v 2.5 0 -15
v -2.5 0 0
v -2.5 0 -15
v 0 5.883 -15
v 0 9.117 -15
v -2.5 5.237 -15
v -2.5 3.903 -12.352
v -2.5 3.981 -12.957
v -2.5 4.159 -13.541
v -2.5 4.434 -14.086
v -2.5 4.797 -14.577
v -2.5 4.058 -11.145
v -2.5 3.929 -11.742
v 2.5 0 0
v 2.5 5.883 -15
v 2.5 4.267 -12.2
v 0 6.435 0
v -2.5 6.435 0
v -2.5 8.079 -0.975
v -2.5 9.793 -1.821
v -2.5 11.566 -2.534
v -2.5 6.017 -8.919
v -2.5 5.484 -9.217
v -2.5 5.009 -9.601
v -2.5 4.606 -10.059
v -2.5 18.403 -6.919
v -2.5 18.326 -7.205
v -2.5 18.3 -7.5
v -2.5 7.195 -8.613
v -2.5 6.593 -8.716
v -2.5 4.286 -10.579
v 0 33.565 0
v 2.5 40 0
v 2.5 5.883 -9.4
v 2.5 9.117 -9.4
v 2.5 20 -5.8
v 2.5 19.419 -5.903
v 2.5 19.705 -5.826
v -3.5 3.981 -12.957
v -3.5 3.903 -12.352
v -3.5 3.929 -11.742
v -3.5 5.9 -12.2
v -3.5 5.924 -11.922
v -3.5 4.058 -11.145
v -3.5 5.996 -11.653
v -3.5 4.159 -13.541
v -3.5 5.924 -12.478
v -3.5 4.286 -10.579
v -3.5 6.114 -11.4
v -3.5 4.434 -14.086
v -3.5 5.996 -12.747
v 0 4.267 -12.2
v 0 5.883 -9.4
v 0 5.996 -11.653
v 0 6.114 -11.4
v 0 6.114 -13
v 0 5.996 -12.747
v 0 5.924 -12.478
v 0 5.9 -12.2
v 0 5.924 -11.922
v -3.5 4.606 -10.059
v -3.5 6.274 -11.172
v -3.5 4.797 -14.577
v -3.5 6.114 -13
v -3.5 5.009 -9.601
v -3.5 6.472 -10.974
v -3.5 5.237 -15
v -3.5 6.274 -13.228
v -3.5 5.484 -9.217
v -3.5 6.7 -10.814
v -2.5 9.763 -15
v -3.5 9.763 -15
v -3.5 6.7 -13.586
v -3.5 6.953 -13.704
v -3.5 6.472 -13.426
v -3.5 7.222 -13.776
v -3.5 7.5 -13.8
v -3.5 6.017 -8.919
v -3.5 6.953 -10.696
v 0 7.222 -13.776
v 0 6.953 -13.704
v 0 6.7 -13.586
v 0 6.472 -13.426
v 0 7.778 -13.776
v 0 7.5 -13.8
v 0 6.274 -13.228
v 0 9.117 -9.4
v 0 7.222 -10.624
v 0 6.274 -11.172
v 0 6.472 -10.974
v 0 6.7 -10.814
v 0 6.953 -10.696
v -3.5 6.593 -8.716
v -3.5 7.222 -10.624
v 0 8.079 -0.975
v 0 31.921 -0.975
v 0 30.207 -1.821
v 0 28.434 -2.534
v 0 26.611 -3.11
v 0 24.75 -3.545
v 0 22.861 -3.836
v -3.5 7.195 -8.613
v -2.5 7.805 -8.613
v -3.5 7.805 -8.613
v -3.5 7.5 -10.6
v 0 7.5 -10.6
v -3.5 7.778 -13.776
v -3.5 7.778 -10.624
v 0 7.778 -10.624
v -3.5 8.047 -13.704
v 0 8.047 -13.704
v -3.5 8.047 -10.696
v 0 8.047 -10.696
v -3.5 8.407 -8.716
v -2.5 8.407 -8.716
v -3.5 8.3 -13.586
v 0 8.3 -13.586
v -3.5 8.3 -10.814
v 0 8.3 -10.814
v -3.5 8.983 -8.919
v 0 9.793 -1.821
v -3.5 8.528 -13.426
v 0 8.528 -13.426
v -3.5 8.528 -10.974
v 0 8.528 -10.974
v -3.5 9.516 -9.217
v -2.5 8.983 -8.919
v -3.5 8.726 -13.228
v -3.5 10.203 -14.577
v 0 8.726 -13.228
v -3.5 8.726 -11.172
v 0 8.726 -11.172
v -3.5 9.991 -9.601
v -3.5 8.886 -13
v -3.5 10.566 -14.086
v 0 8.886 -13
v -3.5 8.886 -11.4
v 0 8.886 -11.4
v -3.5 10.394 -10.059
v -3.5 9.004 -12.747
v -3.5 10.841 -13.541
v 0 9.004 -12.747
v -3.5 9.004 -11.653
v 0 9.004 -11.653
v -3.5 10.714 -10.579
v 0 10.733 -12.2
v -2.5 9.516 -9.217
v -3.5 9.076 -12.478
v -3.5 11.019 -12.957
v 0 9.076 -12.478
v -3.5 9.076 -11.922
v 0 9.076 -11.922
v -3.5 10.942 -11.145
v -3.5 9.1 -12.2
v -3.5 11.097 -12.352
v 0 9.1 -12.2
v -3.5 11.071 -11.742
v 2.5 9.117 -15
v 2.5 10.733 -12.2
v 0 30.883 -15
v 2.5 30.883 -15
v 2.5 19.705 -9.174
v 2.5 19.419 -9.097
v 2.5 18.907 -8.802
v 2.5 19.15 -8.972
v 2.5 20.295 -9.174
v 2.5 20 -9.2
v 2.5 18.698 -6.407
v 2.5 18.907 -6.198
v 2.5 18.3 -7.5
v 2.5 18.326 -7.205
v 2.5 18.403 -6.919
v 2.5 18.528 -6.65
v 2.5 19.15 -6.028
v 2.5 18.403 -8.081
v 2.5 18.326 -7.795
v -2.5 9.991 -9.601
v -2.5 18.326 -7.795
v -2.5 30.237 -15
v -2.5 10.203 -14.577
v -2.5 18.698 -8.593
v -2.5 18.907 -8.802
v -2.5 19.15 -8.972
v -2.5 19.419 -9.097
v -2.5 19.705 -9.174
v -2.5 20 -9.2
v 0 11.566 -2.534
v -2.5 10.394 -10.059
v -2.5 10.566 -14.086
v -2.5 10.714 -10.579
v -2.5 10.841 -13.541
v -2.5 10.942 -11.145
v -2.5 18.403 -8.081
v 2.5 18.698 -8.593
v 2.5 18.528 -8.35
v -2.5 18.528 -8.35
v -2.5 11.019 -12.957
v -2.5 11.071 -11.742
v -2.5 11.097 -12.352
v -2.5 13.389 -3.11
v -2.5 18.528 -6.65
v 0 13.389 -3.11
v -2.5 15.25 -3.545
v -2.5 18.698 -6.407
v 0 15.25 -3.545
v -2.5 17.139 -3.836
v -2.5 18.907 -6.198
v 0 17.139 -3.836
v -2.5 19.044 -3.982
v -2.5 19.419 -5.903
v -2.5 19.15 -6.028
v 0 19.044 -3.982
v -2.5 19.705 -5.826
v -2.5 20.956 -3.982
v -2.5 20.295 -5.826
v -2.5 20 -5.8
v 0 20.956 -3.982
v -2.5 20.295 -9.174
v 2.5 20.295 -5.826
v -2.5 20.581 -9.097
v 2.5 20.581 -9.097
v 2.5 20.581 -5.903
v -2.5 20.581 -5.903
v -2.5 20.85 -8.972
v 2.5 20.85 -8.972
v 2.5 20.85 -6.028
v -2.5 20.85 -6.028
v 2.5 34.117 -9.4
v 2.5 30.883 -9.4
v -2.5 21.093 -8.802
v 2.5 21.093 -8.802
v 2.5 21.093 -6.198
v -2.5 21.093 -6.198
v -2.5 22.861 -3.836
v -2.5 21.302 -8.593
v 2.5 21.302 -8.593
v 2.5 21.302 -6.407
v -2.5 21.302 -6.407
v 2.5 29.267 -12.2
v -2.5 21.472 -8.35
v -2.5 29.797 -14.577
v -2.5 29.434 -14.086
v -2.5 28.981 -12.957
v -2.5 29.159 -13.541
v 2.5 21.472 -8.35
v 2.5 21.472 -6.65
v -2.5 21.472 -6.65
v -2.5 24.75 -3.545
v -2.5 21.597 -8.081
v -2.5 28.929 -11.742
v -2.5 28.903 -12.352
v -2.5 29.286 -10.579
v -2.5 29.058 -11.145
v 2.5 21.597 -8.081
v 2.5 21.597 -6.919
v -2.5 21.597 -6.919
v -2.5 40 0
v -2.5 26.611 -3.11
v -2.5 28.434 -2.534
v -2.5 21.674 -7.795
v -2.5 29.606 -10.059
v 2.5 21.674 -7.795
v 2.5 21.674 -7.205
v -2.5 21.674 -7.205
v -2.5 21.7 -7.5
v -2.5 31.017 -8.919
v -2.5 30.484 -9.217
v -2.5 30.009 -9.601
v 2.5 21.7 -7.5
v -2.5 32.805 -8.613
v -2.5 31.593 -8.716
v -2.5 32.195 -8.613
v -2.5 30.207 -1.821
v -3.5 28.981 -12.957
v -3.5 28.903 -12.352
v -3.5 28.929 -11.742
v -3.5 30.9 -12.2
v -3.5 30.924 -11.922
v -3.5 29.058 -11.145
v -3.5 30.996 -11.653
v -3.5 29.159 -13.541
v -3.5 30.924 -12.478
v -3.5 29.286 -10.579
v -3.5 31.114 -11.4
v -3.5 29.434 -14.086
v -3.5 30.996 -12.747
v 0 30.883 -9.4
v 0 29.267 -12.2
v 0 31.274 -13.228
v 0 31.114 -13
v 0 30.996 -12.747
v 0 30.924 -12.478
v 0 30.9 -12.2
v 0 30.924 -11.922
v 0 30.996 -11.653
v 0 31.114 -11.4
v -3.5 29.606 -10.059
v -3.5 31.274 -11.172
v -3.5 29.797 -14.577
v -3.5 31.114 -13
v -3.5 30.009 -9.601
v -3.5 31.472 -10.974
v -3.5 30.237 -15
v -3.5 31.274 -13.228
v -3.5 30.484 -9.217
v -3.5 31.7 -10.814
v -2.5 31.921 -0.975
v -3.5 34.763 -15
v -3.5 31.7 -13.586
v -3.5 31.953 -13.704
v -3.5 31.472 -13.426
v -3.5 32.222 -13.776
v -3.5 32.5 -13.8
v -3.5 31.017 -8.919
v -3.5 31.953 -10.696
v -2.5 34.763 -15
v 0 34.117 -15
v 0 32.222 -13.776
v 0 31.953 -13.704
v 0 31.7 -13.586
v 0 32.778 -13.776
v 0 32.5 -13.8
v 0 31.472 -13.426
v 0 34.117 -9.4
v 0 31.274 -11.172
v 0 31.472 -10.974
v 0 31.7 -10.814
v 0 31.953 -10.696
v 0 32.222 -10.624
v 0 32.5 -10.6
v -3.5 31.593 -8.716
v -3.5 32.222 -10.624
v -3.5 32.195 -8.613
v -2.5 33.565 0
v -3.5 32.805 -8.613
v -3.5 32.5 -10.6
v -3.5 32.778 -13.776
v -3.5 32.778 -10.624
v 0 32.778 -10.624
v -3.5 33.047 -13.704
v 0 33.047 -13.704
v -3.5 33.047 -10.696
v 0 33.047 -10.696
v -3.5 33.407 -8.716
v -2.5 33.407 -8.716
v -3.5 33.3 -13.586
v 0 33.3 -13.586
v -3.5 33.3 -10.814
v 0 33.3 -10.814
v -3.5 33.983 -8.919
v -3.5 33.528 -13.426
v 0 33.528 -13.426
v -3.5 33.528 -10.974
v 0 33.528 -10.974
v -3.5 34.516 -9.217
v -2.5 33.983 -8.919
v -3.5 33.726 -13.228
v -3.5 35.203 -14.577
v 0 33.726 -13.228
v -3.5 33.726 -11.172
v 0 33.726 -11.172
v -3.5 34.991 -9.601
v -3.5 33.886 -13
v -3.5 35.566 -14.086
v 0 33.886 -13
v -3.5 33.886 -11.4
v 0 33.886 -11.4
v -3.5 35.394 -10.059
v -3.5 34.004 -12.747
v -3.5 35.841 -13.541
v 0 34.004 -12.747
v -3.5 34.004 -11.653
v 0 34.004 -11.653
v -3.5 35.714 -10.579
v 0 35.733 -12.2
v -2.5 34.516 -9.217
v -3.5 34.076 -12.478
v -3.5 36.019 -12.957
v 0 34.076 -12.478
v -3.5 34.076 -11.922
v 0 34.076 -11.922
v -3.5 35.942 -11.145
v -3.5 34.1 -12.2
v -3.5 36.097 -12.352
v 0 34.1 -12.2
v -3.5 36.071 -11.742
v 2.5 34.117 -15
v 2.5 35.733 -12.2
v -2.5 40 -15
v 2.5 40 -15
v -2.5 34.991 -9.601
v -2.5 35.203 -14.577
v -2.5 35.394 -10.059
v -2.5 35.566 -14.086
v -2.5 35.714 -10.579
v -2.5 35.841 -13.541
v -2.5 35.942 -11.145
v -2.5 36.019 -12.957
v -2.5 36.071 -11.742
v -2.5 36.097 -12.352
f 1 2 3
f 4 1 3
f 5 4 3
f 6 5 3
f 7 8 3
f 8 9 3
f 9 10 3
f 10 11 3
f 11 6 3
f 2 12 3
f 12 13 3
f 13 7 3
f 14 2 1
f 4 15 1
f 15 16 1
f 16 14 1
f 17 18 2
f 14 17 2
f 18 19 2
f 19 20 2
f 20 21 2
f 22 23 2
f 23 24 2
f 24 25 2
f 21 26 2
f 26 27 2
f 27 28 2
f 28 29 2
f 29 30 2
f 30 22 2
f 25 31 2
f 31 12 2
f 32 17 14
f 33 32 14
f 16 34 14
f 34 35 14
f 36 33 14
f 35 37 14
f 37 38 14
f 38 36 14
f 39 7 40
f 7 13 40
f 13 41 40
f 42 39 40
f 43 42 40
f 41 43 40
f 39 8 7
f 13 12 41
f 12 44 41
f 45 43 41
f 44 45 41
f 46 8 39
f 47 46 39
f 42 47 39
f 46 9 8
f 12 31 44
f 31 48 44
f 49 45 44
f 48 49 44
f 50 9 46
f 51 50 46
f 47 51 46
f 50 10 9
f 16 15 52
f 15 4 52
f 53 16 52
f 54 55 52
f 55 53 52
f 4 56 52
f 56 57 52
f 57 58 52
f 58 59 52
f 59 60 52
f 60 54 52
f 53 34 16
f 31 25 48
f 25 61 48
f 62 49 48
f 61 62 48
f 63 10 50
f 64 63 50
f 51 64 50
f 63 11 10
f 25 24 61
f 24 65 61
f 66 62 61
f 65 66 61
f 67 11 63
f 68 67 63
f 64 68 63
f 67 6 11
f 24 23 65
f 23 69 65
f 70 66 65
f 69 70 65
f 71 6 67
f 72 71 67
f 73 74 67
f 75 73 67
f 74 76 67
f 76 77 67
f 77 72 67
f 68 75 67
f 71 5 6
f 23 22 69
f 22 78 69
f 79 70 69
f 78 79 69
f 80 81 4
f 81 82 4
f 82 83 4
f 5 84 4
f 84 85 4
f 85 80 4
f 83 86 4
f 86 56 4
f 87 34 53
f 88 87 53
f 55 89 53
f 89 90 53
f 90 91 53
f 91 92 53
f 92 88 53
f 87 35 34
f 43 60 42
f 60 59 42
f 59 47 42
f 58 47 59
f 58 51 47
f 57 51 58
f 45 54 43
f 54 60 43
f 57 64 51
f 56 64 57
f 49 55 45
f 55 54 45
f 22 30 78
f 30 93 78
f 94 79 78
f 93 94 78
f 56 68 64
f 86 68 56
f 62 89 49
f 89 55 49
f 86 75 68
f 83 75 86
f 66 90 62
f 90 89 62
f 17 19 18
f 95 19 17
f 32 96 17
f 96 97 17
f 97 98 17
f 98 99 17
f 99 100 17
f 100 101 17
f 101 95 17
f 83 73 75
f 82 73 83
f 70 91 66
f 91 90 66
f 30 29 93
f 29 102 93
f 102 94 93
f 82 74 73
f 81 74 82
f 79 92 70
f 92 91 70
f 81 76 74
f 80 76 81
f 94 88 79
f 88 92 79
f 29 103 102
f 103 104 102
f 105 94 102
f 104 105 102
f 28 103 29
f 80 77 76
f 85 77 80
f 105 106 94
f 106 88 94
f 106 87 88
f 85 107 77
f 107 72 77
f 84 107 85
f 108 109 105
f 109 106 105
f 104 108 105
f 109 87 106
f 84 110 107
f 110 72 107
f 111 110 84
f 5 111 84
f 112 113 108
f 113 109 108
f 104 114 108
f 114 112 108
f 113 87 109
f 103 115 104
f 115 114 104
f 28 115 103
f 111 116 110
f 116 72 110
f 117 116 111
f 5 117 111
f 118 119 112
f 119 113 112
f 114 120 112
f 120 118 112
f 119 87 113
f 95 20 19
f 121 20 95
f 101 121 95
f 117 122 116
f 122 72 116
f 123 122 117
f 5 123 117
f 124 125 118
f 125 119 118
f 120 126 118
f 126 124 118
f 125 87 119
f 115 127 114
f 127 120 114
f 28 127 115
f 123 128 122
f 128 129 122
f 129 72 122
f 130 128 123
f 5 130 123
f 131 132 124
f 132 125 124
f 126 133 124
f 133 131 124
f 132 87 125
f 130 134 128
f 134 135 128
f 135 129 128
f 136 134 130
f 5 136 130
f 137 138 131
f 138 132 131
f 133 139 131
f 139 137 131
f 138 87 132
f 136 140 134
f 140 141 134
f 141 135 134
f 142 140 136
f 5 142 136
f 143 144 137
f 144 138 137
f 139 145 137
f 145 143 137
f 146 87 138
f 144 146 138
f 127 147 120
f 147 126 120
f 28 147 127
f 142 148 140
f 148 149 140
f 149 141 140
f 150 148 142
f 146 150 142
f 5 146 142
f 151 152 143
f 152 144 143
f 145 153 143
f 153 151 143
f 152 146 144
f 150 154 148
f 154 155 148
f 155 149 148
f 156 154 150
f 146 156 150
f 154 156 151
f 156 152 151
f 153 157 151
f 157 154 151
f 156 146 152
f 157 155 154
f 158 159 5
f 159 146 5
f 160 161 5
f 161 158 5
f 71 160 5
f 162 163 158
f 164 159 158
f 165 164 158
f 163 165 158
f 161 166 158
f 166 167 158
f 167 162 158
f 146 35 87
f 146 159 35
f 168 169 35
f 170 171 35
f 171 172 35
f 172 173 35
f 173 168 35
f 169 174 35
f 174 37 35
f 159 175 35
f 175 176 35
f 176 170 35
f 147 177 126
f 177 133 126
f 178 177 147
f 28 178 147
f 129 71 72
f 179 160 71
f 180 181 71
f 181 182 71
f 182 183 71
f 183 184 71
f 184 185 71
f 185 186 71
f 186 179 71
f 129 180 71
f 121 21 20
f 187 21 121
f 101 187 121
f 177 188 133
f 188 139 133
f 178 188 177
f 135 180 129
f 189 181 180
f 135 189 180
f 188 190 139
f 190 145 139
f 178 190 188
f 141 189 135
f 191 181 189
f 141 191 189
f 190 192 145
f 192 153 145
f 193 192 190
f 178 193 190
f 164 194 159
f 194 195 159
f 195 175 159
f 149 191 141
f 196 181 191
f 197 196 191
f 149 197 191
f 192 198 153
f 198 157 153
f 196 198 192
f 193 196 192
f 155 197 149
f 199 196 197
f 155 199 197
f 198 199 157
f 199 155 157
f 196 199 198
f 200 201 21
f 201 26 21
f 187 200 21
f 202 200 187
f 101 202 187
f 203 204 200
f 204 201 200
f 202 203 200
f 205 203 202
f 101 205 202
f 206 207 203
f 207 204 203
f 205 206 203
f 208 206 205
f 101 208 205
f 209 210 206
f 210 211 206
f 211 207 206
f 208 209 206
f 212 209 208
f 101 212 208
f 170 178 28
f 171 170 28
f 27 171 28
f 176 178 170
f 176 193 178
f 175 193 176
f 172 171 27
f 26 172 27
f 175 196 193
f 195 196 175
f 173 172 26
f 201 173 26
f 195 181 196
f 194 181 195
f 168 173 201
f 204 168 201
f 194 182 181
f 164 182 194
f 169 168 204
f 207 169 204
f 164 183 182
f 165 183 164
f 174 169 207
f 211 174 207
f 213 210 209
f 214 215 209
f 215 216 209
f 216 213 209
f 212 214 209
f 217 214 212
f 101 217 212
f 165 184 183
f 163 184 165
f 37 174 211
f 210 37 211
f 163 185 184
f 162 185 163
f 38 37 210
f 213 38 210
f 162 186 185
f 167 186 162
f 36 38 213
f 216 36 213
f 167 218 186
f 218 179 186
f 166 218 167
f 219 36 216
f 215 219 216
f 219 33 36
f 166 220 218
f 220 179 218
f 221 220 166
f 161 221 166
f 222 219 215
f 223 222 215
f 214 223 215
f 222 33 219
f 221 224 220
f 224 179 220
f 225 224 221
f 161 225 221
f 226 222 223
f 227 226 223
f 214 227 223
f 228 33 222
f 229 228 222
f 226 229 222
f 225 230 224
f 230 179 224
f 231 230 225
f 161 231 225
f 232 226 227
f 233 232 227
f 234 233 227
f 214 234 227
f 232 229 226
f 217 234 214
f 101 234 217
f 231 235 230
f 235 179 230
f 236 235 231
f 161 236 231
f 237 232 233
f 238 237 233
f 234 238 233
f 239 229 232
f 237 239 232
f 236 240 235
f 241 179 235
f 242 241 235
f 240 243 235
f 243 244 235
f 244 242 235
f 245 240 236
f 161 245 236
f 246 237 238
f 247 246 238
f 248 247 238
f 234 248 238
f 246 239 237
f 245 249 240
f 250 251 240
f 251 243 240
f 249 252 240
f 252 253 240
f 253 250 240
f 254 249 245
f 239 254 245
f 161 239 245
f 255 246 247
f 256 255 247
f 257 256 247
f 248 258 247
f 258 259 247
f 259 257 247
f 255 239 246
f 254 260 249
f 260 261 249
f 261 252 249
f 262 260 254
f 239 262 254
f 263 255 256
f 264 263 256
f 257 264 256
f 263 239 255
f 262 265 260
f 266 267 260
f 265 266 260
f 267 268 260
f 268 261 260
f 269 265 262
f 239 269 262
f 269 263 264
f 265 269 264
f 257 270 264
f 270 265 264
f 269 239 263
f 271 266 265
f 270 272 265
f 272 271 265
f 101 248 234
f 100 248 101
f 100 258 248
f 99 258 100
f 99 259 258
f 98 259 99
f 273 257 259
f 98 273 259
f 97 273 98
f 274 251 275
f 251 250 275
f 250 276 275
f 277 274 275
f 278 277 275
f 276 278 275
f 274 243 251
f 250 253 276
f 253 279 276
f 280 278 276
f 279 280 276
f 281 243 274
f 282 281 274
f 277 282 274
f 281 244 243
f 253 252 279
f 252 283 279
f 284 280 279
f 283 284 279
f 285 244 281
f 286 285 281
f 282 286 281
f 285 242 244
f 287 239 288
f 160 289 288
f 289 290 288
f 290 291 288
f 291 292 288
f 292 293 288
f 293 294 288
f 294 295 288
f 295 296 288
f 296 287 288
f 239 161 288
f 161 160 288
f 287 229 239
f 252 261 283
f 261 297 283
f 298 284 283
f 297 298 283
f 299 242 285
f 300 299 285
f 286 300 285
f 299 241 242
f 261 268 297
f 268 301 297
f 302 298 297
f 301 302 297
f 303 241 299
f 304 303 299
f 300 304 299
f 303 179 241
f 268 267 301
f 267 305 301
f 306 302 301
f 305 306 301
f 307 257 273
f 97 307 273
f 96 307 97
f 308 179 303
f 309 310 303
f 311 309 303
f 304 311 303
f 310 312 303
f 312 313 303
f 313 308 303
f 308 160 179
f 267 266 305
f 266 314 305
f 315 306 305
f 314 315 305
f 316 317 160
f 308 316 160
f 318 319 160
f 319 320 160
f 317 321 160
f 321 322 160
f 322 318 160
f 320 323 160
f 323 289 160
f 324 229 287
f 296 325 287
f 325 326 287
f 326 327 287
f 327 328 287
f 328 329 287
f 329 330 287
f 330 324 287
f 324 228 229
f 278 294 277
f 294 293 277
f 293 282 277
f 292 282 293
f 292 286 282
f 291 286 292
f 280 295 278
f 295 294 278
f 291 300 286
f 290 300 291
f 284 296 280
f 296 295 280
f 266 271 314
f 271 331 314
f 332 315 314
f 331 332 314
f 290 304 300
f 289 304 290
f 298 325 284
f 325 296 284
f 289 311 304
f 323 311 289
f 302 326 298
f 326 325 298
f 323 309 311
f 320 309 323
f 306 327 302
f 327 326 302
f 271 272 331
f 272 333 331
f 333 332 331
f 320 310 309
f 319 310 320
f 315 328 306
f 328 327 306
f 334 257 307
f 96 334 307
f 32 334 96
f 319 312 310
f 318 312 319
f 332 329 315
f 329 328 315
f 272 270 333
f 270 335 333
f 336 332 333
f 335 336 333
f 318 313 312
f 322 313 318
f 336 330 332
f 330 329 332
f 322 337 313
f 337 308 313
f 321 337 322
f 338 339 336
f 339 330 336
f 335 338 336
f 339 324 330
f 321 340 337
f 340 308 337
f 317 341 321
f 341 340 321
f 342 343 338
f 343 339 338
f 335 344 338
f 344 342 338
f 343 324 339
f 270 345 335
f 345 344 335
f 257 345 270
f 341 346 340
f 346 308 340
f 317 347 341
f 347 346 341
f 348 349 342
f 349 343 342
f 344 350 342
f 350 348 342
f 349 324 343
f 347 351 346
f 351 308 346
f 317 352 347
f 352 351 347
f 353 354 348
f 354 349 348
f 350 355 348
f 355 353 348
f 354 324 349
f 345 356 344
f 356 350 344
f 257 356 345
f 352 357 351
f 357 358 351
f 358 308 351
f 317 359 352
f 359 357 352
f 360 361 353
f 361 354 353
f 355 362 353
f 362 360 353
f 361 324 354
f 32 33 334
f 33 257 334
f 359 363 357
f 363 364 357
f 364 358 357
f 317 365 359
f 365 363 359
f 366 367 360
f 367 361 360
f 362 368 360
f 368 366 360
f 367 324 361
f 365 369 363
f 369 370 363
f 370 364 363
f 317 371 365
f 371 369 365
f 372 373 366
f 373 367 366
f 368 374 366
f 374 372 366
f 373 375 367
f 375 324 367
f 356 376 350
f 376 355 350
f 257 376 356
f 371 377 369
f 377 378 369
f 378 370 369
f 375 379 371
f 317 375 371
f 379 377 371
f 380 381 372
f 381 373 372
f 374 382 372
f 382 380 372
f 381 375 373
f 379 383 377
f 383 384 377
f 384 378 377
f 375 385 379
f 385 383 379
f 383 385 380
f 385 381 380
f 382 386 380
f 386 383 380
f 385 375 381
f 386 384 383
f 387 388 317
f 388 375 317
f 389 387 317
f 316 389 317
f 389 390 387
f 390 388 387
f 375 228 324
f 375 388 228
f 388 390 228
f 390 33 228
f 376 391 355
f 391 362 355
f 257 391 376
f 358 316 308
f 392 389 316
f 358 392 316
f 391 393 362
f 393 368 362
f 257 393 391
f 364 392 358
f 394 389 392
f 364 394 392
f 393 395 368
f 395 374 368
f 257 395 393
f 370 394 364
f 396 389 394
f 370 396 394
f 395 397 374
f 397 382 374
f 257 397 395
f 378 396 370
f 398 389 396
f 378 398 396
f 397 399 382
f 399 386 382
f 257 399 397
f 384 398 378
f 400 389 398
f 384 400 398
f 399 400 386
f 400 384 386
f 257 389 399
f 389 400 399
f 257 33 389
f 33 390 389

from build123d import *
from build123d.topology import SkipClean

# Parameters (mm, degrees)
SKETCH1_R           = 1.7
BOSS_EXTRUDE1_DEPTH = 2.5
BOSS_EXTRUDE2_START = -2.5
SKETCH1_3_W         = 15
SKETCH1_3_H         = 40
SKETCH1_3_R         = 1.7
SKETCH1_3_R_2       = 1.6
BOSS_EXTRUDE2_DEPTH = 2.5
CUT_EXTRUDE1_DEPTH  = 2.5
BOSS_EXTRUDE3_START = 1
SKETCH2_R           = 1.6
BOSS_EXTRUDE3_DEPTH = 1


with BuildPart() as part:
    # Sketch1 → Boss-Extrude1 (new body)
    with BuildSketch(Plane(origin=(0, 0, 0), x_dir=(0, 0, -1), z_dir=(1, 0, 0))):
        Polygon((15, 40), (0, 40), (0, 0), (15, 0), (15, 5.883419246), (12.2, 4.266838493), (9.4, 5.883419246), (9.4, 9.116580754), (12.2, 10.733161507), (15, 9.116580754), (15, 30.883419246), (12.2, 29.266838493), (9.4, 30.883419246), (9.4, 34.116580754), (12.2, 35.733161507), (15, 34.116580754), align=None)
        with Locations((7.5, 20)):
            Circle(SKETCH1_R, mode=Mode.SUBTRACT)
    extrude(amount=BOSS_EXTRUDE1_DEPTH)

    # Sketch1<3> → Boss-Extrude2 (add)
    with BuildSketch(Plane(origin=(0, 0, 0), x_dir=(0, 0, -1), z_dir=(1, 0, 0)).offset(BOSS_EXTRUDE2_START)):
        with Locations((7.5, 20)):
            Rectangle(SKETCH1_3_W, SKETCH1_3_H)
        with Locations((7.5, 20)):
            Circle(SKETCH1_3_R, mode=Mode.SUBTRACT)
        with Locations((12.2, 32.5)):
            Circle(SKETCH1_3_R_2, mode=Mode.SUBTRACT)
        with Locations((12.2, 7.5)):
            Circle(SKETCH1_3_R_2, mode=Mode.SUBTRACT)
    extrude(amount=BOSS_EXTRUDE2_DEPTH)

    # Sketch3 → Cut-Extrude1 (cut)
    with BuildSketch(Plane.ZY.offset(2.5)):
        with BuildLine():
            ThreePointArc((0, 33.564659966), (-4, 20), (0, 6.435340034))
            Line((0, 6.435340034), (0, 33.564659966))
        make_face()
    extrude(amount=-CUT_EXTRUDE1_DEPTH, mode=Mode.SUBTRACT)

    # Sketch2 → Boss-Extrude3 (add)
    # profile 1 of 2: a face of its own
    with SkipClean():  # the faces are left unmerged after this step: merging them gives an invalid solid
        with BuildSketch(Plane.ZY.offset(2.5).offset(BOSS_EXTRUDE3_START)):
            with BuildLine():
                ThreePointArc((-15, 30.2372583), (-8.6, 32.5), (-15, 34.7627417))
                Line((-15, 34.7627417), (-15, 30.2372583))
            make_face()
            with Locations((-12.2, 32.5)):
                Circle(SKETCH2_R, mode=Mode.SUBTRACT)
        # profile 2 of 2: a face of its own
        with BuildSketch(Plane.ZY.offset(2.5).offset(BOSS_EXTRUDE3_START)):
            with BuildLine():
                ThreePointArc((-15, 5.2372583), (-8.6, 7.5), (-15, 9.7627417))
                Line((-15, 9.7627417), (-15, 5.2372583))
            make_face()
            with Locations((-12.2, 7.5)):
                Circle(SKETCH2_R, mode=Mode.SUBTRACT)
        extrude(amount=-BOSS_EXTRUDE3_DEPTH)


solid = part.part
